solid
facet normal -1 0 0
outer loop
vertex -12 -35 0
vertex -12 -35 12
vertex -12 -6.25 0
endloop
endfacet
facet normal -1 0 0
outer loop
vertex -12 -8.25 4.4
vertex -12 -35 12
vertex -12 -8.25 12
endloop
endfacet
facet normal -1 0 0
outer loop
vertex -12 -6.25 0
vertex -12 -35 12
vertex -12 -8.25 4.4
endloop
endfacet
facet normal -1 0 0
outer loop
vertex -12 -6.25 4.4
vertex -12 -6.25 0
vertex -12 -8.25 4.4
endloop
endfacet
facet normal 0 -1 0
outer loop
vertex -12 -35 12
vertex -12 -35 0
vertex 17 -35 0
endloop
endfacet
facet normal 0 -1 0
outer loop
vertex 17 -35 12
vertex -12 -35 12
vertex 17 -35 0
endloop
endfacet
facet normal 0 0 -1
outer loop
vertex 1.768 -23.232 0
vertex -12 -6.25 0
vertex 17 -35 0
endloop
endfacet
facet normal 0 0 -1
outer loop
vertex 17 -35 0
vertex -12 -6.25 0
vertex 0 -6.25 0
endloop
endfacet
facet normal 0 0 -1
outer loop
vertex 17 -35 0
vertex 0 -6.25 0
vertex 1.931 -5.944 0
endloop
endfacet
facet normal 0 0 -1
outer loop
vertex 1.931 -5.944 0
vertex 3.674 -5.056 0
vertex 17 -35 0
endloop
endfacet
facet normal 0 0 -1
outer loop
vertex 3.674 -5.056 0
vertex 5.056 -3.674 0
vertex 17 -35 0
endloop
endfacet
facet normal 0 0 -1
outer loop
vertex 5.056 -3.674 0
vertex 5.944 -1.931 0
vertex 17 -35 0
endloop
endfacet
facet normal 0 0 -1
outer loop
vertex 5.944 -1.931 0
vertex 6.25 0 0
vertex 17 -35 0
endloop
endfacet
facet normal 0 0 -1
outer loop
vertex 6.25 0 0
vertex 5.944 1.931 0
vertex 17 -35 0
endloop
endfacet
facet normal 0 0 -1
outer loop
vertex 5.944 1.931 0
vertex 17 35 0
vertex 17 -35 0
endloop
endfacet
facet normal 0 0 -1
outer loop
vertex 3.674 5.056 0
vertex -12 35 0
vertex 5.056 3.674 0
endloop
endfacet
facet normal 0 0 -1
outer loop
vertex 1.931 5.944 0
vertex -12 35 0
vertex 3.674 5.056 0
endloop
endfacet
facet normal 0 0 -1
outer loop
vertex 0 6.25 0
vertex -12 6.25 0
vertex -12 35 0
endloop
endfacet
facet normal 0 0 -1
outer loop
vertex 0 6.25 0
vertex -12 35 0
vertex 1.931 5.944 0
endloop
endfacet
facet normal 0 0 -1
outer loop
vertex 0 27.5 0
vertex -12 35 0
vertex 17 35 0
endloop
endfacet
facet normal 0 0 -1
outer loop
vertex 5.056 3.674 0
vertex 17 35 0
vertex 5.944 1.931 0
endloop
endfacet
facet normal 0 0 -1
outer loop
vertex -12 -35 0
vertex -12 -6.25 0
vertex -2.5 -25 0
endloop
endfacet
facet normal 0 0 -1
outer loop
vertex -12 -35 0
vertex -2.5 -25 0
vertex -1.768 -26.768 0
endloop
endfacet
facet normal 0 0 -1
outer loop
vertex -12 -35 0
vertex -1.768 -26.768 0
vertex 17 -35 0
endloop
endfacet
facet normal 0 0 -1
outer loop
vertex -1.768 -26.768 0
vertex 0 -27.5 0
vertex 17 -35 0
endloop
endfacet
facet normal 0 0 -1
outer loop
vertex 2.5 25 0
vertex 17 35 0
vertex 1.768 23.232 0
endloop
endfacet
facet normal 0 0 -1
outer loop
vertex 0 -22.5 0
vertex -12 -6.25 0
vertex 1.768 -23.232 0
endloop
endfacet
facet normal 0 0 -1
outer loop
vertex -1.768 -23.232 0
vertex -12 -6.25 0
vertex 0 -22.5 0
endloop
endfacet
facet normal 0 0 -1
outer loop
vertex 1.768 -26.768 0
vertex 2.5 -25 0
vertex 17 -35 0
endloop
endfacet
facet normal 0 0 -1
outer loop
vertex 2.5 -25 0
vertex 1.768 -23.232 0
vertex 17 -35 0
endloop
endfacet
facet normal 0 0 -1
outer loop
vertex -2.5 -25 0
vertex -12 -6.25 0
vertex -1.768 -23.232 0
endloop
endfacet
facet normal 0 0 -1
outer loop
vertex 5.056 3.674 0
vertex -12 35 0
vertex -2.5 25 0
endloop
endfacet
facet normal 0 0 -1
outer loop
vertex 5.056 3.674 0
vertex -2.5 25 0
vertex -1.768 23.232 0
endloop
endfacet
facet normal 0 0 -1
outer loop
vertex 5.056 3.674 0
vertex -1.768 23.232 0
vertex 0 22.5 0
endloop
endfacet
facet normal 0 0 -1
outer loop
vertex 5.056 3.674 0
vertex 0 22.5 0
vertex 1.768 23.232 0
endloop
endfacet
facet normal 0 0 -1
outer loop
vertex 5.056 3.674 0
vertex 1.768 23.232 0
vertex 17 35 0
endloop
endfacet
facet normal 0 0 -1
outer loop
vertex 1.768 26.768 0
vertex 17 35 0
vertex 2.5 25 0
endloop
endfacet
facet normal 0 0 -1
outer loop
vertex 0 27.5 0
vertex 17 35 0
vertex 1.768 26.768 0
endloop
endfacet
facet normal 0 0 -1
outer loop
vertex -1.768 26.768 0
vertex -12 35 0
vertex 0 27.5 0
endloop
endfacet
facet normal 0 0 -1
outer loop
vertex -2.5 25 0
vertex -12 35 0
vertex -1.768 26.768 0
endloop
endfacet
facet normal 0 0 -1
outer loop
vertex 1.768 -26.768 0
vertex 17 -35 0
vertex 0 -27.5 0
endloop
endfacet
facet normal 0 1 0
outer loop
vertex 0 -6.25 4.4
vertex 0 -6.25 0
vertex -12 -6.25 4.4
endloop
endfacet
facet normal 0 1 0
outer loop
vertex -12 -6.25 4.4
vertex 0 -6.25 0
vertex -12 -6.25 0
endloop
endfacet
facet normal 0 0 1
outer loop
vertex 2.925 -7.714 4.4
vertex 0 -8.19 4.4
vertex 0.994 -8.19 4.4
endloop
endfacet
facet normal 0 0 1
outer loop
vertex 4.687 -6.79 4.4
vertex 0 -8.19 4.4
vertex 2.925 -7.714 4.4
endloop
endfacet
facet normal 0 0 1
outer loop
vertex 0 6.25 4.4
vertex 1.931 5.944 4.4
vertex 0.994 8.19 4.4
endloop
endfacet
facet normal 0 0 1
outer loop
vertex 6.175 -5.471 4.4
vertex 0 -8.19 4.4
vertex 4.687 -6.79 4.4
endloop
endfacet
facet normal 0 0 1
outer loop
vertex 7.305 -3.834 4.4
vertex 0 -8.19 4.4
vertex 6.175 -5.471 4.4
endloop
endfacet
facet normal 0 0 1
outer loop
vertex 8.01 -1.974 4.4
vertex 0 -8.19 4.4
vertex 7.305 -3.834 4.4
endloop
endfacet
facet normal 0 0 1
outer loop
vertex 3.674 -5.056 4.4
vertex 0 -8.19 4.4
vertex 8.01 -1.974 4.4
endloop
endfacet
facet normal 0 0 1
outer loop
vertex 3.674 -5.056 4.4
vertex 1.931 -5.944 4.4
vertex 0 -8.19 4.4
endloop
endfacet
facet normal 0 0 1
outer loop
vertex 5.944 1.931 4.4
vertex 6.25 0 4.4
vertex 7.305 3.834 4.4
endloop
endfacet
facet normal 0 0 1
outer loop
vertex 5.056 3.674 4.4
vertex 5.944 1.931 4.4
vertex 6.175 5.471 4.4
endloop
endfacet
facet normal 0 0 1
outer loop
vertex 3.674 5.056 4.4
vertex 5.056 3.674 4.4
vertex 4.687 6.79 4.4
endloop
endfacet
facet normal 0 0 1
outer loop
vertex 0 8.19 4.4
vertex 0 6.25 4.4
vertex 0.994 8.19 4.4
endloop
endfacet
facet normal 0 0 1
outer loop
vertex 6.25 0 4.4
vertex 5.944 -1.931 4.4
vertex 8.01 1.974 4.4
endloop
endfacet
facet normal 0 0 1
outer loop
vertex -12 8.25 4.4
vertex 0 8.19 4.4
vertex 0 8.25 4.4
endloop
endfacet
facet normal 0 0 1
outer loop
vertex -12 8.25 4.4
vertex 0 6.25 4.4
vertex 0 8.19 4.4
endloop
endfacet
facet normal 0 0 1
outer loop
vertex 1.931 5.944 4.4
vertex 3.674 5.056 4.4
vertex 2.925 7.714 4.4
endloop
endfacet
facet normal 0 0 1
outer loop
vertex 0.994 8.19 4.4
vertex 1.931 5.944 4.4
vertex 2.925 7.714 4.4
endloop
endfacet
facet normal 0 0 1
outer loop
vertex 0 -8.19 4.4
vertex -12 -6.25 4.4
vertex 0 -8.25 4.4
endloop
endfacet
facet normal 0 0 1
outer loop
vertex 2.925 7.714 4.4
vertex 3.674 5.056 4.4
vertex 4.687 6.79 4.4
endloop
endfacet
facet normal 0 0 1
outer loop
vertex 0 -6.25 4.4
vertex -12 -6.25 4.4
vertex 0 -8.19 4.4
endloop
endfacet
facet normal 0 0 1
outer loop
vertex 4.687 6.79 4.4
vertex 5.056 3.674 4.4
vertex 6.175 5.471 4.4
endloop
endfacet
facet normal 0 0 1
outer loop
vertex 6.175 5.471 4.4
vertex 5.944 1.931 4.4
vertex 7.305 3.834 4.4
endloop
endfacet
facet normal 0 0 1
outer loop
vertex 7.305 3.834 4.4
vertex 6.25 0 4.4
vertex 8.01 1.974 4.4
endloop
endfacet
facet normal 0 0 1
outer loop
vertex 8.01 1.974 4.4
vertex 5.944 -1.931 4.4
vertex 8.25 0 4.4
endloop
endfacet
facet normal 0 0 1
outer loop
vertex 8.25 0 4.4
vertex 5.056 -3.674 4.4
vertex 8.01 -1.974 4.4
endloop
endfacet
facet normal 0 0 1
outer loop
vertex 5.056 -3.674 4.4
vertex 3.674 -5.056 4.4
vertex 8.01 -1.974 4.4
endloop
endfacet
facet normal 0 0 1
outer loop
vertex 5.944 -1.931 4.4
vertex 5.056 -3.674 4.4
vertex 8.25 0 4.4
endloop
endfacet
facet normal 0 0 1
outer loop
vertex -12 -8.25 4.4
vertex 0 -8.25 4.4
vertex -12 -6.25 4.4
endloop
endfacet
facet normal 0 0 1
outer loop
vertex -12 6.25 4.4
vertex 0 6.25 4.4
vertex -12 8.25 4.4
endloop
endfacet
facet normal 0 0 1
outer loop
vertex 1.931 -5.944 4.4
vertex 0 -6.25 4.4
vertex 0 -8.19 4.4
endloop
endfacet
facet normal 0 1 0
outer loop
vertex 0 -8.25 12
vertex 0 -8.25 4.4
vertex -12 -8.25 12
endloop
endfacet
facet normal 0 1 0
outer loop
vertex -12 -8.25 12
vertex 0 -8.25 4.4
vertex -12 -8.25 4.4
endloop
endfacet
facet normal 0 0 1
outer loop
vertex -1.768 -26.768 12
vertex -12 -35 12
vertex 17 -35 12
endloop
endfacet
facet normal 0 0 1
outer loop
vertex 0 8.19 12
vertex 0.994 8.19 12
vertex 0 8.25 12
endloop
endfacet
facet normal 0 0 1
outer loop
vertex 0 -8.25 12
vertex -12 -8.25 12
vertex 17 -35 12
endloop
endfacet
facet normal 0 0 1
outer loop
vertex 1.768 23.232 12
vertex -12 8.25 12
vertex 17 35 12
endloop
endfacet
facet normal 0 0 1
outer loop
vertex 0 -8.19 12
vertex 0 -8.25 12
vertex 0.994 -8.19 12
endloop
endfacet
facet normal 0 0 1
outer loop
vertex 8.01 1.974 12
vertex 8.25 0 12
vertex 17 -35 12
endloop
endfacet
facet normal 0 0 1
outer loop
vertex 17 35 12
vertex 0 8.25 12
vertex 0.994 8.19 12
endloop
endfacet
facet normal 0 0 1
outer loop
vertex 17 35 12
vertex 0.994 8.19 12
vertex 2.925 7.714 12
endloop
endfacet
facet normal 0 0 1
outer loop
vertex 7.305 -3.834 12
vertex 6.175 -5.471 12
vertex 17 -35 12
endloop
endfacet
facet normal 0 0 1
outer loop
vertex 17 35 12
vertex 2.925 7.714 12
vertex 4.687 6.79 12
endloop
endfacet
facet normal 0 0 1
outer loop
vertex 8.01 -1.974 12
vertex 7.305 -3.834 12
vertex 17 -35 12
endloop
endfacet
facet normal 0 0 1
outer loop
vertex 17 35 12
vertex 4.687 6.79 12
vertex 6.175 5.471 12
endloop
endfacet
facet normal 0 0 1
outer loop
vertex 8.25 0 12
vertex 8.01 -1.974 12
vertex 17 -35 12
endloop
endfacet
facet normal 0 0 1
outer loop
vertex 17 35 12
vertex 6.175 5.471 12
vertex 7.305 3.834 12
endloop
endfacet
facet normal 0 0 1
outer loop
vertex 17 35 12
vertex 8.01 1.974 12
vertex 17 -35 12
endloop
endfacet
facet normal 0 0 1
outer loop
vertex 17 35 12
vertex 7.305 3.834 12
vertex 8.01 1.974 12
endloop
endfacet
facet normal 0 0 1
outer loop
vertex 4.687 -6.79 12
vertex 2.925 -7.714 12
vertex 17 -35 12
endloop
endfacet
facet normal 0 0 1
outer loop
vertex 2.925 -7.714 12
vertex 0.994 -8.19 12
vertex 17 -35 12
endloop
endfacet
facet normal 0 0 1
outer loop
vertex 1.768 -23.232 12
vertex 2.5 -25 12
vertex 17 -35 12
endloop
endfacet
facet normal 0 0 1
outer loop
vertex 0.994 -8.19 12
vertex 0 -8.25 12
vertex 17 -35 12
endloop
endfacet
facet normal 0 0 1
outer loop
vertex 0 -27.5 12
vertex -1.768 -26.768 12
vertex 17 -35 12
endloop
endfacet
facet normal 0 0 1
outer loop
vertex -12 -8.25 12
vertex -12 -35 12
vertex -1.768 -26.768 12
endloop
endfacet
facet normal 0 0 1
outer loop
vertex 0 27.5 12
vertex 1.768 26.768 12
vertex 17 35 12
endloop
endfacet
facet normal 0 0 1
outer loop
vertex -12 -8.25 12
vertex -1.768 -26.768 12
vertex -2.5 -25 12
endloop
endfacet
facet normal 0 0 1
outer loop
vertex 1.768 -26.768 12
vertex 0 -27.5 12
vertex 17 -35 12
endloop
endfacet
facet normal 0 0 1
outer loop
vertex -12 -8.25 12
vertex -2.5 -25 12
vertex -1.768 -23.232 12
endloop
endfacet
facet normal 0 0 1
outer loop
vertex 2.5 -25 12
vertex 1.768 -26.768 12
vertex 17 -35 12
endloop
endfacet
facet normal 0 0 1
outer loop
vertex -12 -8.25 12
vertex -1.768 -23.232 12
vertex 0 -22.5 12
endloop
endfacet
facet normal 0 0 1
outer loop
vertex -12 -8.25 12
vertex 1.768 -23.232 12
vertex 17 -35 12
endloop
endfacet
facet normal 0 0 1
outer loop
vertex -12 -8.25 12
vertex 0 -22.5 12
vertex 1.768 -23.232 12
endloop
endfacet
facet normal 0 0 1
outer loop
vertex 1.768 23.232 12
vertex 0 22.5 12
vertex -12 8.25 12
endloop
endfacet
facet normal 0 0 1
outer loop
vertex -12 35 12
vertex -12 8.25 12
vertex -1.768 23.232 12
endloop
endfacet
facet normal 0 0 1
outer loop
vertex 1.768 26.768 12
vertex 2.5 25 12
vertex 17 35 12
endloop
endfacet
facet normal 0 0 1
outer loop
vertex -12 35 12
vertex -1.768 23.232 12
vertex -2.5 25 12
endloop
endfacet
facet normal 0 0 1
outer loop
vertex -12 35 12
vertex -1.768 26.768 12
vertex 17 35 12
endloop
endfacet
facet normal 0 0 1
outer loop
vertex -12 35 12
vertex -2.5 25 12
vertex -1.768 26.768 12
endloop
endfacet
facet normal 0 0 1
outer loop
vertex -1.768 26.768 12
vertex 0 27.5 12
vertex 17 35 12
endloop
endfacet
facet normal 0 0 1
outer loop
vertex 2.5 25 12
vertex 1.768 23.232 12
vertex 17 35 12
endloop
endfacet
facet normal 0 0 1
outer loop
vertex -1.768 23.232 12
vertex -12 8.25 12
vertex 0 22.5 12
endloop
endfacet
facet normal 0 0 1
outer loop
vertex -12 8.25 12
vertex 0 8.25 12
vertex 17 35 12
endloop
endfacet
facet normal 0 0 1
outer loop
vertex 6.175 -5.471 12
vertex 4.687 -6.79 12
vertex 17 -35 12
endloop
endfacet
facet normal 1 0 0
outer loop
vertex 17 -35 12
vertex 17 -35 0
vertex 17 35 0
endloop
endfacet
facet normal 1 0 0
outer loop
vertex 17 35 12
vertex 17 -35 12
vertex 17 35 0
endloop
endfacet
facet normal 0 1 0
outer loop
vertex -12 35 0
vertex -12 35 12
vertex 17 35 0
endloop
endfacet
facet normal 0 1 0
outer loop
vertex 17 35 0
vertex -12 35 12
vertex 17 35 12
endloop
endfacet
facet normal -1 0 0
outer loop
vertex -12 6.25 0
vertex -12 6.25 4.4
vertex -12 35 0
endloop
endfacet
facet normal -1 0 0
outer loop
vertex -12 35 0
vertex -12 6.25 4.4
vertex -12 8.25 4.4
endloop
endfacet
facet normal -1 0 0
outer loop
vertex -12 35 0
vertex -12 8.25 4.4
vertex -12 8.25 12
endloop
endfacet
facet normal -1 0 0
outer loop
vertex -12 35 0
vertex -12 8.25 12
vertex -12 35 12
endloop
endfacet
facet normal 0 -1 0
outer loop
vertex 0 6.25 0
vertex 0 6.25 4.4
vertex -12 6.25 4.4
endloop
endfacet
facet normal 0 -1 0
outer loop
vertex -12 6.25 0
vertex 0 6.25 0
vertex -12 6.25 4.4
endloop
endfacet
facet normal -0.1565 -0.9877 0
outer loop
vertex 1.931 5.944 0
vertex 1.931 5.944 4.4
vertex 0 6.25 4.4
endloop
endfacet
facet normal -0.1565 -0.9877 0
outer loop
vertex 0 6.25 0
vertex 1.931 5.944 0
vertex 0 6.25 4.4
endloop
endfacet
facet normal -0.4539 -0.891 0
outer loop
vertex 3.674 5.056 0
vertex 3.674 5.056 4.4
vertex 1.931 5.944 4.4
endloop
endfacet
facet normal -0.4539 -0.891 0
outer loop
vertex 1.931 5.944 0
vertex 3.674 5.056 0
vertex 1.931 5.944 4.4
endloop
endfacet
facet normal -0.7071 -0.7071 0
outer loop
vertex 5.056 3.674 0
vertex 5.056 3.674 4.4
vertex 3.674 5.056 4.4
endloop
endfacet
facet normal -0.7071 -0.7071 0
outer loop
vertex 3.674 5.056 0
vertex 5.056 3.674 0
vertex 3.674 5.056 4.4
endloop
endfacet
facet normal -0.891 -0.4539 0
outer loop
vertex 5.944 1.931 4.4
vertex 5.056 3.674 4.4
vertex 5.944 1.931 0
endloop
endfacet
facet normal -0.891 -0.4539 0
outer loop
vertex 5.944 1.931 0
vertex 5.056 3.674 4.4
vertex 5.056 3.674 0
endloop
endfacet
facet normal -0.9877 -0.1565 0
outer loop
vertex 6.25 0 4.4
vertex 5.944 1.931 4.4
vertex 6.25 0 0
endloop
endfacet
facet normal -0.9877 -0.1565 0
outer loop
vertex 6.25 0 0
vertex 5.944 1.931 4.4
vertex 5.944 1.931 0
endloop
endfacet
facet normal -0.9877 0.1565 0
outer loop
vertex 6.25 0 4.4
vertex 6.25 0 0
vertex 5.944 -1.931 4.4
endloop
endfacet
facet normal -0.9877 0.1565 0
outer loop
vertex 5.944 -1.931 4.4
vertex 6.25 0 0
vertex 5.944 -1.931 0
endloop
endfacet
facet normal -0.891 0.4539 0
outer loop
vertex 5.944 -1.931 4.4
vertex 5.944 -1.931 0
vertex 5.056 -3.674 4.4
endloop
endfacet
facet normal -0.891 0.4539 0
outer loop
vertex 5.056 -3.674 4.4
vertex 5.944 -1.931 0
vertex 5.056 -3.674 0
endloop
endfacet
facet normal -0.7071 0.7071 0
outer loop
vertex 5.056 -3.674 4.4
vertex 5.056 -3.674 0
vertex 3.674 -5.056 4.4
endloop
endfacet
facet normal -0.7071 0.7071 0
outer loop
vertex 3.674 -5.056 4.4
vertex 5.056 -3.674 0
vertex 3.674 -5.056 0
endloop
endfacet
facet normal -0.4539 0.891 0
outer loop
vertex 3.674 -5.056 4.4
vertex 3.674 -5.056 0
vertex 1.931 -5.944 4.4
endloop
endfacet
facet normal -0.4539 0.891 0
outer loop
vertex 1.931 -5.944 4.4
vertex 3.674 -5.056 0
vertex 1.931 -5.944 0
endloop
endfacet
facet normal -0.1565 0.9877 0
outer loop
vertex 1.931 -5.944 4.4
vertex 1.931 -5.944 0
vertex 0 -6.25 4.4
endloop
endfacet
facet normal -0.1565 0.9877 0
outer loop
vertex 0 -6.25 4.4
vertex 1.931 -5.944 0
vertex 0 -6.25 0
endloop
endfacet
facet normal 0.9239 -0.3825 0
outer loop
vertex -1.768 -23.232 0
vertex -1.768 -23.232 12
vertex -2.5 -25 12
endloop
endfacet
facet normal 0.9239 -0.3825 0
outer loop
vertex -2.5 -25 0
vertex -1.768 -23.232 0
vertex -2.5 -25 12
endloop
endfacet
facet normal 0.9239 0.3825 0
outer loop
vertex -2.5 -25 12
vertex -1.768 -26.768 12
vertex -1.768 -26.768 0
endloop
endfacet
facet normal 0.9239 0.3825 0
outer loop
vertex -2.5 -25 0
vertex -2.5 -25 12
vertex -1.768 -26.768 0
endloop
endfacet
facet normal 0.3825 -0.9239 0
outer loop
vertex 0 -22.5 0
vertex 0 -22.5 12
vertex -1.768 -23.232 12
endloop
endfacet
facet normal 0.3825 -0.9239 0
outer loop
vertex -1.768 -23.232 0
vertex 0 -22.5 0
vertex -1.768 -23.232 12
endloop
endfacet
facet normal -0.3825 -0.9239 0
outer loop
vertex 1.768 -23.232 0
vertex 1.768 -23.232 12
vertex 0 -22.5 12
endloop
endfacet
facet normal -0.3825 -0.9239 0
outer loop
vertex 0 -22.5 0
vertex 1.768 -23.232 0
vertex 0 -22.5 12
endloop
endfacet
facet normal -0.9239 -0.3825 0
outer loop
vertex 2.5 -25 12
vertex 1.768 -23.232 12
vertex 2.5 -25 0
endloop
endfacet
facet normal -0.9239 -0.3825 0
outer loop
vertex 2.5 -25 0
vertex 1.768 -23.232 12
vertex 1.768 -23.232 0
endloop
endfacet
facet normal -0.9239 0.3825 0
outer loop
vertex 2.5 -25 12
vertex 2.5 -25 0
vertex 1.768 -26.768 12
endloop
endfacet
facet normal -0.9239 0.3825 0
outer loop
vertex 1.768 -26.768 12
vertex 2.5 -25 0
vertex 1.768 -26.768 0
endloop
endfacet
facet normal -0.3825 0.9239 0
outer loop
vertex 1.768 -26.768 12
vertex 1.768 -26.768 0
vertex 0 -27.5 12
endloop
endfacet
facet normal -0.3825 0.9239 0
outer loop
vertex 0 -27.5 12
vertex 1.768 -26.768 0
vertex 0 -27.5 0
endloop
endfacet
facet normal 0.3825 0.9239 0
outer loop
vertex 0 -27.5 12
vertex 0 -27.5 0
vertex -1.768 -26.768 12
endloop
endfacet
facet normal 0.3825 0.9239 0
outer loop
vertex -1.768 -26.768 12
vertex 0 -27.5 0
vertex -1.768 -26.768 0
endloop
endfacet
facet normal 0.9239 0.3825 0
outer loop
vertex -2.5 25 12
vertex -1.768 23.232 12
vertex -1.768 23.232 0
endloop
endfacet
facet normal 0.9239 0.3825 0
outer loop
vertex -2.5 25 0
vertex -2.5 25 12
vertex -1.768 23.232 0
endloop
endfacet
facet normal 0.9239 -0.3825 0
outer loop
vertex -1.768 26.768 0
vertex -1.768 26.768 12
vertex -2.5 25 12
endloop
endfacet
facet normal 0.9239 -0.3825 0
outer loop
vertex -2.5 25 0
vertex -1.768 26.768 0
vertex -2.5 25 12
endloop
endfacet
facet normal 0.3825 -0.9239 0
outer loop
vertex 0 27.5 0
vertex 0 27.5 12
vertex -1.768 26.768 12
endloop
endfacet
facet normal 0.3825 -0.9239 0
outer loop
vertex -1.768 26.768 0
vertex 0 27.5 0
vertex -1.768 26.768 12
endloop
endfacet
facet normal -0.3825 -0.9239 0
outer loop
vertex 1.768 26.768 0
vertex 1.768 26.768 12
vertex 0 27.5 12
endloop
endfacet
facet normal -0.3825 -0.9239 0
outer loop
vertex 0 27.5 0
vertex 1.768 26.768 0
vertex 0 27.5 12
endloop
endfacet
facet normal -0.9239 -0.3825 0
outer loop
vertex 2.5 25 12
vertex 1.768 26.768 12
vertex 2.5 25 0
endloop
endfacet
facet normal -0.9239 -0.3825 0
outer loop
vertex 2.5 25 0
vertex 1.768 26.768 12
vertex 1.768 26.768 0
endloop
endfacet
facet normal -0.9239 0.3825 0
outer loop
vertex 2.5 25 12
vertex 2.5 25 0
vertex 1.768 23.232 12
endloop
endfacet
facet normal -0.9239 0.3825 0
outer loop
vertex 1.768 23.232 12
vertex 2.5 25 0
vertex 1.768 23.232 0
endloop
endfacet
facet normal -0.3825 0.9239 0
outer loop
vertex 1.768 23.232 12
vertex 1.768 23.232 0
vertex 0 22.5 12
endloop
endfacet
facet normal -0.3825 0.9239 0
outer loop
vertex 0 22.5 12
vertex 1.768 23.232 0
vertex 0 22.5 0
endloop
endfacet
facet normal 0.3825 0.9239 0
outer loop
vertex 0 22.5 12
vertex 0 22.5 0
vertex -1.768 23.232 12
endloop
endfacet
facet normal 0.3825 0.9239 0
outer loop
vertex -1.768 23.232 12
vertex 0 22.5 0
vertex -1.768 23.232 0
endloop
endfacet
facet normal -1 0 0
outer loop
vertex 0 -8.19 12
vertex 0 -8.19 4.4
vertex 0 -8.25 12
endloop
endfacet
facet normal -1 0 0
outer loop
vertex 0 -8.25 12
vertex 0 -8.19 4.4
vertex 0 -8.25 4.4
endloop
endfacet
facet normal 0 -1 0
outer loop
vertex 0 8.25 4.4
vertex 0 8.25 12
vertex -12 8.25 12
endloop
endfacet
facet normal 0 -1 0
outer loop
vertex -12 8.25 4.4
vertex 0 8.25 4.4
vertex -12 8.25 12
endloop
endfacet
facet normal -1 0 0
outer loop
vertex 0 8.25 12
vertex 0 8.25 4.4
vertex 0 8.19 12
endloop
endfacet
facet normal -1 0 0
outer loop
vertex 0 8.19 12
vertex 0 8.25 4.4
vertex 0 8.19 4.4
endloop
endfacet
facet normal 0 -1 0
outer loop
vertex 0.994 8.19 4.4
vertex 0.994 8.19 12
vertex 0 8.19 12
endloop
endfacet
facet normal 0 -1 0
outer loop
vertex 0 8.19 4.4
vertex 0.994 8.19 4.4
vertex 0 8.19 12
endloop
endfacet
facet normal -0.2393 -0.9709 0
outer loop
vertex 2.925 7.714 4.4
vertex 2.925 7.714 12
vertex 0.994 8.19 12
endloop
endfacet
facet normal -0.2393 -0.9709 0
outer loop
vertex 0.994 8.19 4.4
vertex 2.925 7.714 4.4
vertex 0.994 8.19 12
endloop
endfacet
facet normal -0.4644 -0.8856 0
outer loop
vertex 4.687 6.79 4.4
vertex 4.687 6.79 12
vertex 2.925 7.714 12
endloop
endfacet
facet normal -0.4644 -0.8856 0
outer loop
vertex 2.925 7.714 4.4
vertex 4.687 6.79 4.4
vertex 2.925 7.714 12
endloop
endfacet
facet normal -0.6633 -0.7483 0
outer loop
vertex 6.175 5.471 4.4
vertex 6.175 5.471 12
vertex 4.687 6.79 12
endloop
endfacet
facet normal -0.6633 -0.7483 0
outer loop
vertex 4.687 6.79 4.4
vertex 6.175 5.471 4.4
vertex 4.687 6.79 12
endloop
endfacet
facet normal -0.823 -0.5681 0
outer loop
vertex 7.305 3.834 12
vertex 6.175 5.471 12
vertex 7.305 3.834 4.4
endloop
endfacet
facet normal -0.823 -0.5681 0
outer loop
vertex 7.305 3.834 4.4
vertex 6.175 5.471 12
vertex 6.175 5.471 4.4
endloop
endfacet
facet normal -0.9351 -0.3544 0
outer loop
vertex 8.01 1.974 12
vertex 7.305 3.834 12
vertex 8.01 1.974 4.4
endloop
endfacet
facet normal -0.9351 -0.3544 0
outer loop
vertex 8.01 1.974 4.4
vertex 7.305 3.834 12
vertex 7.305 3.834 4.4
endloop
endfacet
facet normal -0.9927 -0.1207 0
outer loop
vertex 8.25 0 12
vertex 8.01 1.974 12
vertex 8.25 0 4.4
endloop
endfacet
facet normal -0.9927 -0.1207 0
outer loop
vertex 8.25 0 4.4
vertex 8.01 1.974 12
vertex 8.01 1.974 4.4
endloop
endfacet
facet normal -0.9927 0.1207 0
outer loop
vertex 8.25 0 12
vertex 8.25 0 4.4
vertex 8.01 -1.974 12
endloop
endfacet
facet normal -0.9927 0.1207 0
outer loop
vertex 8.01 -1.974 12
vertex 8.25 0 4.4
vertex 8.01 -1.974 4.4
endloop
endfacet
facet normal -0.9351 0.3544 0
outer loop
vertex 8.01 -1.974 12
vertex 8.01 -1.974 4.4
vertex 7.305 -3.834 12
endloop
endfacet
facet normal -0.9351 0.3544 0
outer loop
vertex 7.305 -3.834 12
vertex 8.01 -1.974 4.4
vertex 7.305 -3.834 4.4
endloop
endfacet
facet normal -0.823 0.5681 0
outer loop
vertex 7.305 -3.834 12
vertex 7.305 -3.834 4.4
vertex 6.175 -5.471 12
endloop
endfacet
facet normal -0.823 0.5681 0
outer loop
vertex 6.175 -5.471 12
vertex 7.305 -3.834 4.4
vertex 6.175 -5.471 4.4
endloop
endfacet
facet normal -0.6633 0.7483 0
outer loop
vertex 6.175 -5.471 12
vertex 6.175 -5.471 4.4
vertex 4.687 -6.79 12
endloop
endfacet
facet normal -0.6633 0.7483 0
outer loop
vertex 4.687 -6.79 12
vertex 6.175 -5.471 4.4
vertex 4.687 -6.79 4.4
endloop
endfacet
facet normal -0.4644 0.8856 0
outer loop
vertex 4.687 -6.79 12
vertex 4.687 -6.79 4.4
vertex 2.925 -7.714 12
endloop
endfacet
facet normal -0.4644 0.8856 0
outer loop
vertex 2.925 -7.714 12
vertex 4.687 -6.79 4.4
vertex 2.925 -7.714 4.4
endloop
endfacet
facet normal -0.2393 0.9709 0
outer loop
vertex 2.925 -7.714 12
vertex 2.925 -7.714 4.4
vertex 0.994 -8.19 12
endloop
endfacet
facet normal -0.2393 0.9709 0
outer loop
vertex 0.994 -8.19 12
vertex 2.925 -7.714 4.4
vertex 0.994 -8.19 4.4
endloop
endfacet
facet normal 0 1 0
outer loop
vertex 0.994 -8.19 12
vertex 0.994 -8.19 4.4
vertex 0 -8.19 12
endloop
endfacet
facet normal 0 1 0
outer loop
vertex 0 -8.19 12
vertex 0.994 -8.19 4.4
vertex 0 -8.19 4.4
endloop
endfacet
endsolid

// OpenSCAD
module groovemount(){

difference(){
translate([-12,-35,0])cube(size=[29,70,12], center=false);

translate([-10,0,5])cube(size=[20,12.5,15], center=true);
translate([-10,0,5+4.4])cube(size=[20,16.5,10], center=true);

cylinder(h=20, r=12.5/2);
translate([0,0,4.4])cylinder(h=20, r=16.5/2);
translate([0,-25,0])cylinder(h=20, r=5/2);
translate([0,25,0])cylinder(h=20, r=5/2);
}
}

groovemount();
